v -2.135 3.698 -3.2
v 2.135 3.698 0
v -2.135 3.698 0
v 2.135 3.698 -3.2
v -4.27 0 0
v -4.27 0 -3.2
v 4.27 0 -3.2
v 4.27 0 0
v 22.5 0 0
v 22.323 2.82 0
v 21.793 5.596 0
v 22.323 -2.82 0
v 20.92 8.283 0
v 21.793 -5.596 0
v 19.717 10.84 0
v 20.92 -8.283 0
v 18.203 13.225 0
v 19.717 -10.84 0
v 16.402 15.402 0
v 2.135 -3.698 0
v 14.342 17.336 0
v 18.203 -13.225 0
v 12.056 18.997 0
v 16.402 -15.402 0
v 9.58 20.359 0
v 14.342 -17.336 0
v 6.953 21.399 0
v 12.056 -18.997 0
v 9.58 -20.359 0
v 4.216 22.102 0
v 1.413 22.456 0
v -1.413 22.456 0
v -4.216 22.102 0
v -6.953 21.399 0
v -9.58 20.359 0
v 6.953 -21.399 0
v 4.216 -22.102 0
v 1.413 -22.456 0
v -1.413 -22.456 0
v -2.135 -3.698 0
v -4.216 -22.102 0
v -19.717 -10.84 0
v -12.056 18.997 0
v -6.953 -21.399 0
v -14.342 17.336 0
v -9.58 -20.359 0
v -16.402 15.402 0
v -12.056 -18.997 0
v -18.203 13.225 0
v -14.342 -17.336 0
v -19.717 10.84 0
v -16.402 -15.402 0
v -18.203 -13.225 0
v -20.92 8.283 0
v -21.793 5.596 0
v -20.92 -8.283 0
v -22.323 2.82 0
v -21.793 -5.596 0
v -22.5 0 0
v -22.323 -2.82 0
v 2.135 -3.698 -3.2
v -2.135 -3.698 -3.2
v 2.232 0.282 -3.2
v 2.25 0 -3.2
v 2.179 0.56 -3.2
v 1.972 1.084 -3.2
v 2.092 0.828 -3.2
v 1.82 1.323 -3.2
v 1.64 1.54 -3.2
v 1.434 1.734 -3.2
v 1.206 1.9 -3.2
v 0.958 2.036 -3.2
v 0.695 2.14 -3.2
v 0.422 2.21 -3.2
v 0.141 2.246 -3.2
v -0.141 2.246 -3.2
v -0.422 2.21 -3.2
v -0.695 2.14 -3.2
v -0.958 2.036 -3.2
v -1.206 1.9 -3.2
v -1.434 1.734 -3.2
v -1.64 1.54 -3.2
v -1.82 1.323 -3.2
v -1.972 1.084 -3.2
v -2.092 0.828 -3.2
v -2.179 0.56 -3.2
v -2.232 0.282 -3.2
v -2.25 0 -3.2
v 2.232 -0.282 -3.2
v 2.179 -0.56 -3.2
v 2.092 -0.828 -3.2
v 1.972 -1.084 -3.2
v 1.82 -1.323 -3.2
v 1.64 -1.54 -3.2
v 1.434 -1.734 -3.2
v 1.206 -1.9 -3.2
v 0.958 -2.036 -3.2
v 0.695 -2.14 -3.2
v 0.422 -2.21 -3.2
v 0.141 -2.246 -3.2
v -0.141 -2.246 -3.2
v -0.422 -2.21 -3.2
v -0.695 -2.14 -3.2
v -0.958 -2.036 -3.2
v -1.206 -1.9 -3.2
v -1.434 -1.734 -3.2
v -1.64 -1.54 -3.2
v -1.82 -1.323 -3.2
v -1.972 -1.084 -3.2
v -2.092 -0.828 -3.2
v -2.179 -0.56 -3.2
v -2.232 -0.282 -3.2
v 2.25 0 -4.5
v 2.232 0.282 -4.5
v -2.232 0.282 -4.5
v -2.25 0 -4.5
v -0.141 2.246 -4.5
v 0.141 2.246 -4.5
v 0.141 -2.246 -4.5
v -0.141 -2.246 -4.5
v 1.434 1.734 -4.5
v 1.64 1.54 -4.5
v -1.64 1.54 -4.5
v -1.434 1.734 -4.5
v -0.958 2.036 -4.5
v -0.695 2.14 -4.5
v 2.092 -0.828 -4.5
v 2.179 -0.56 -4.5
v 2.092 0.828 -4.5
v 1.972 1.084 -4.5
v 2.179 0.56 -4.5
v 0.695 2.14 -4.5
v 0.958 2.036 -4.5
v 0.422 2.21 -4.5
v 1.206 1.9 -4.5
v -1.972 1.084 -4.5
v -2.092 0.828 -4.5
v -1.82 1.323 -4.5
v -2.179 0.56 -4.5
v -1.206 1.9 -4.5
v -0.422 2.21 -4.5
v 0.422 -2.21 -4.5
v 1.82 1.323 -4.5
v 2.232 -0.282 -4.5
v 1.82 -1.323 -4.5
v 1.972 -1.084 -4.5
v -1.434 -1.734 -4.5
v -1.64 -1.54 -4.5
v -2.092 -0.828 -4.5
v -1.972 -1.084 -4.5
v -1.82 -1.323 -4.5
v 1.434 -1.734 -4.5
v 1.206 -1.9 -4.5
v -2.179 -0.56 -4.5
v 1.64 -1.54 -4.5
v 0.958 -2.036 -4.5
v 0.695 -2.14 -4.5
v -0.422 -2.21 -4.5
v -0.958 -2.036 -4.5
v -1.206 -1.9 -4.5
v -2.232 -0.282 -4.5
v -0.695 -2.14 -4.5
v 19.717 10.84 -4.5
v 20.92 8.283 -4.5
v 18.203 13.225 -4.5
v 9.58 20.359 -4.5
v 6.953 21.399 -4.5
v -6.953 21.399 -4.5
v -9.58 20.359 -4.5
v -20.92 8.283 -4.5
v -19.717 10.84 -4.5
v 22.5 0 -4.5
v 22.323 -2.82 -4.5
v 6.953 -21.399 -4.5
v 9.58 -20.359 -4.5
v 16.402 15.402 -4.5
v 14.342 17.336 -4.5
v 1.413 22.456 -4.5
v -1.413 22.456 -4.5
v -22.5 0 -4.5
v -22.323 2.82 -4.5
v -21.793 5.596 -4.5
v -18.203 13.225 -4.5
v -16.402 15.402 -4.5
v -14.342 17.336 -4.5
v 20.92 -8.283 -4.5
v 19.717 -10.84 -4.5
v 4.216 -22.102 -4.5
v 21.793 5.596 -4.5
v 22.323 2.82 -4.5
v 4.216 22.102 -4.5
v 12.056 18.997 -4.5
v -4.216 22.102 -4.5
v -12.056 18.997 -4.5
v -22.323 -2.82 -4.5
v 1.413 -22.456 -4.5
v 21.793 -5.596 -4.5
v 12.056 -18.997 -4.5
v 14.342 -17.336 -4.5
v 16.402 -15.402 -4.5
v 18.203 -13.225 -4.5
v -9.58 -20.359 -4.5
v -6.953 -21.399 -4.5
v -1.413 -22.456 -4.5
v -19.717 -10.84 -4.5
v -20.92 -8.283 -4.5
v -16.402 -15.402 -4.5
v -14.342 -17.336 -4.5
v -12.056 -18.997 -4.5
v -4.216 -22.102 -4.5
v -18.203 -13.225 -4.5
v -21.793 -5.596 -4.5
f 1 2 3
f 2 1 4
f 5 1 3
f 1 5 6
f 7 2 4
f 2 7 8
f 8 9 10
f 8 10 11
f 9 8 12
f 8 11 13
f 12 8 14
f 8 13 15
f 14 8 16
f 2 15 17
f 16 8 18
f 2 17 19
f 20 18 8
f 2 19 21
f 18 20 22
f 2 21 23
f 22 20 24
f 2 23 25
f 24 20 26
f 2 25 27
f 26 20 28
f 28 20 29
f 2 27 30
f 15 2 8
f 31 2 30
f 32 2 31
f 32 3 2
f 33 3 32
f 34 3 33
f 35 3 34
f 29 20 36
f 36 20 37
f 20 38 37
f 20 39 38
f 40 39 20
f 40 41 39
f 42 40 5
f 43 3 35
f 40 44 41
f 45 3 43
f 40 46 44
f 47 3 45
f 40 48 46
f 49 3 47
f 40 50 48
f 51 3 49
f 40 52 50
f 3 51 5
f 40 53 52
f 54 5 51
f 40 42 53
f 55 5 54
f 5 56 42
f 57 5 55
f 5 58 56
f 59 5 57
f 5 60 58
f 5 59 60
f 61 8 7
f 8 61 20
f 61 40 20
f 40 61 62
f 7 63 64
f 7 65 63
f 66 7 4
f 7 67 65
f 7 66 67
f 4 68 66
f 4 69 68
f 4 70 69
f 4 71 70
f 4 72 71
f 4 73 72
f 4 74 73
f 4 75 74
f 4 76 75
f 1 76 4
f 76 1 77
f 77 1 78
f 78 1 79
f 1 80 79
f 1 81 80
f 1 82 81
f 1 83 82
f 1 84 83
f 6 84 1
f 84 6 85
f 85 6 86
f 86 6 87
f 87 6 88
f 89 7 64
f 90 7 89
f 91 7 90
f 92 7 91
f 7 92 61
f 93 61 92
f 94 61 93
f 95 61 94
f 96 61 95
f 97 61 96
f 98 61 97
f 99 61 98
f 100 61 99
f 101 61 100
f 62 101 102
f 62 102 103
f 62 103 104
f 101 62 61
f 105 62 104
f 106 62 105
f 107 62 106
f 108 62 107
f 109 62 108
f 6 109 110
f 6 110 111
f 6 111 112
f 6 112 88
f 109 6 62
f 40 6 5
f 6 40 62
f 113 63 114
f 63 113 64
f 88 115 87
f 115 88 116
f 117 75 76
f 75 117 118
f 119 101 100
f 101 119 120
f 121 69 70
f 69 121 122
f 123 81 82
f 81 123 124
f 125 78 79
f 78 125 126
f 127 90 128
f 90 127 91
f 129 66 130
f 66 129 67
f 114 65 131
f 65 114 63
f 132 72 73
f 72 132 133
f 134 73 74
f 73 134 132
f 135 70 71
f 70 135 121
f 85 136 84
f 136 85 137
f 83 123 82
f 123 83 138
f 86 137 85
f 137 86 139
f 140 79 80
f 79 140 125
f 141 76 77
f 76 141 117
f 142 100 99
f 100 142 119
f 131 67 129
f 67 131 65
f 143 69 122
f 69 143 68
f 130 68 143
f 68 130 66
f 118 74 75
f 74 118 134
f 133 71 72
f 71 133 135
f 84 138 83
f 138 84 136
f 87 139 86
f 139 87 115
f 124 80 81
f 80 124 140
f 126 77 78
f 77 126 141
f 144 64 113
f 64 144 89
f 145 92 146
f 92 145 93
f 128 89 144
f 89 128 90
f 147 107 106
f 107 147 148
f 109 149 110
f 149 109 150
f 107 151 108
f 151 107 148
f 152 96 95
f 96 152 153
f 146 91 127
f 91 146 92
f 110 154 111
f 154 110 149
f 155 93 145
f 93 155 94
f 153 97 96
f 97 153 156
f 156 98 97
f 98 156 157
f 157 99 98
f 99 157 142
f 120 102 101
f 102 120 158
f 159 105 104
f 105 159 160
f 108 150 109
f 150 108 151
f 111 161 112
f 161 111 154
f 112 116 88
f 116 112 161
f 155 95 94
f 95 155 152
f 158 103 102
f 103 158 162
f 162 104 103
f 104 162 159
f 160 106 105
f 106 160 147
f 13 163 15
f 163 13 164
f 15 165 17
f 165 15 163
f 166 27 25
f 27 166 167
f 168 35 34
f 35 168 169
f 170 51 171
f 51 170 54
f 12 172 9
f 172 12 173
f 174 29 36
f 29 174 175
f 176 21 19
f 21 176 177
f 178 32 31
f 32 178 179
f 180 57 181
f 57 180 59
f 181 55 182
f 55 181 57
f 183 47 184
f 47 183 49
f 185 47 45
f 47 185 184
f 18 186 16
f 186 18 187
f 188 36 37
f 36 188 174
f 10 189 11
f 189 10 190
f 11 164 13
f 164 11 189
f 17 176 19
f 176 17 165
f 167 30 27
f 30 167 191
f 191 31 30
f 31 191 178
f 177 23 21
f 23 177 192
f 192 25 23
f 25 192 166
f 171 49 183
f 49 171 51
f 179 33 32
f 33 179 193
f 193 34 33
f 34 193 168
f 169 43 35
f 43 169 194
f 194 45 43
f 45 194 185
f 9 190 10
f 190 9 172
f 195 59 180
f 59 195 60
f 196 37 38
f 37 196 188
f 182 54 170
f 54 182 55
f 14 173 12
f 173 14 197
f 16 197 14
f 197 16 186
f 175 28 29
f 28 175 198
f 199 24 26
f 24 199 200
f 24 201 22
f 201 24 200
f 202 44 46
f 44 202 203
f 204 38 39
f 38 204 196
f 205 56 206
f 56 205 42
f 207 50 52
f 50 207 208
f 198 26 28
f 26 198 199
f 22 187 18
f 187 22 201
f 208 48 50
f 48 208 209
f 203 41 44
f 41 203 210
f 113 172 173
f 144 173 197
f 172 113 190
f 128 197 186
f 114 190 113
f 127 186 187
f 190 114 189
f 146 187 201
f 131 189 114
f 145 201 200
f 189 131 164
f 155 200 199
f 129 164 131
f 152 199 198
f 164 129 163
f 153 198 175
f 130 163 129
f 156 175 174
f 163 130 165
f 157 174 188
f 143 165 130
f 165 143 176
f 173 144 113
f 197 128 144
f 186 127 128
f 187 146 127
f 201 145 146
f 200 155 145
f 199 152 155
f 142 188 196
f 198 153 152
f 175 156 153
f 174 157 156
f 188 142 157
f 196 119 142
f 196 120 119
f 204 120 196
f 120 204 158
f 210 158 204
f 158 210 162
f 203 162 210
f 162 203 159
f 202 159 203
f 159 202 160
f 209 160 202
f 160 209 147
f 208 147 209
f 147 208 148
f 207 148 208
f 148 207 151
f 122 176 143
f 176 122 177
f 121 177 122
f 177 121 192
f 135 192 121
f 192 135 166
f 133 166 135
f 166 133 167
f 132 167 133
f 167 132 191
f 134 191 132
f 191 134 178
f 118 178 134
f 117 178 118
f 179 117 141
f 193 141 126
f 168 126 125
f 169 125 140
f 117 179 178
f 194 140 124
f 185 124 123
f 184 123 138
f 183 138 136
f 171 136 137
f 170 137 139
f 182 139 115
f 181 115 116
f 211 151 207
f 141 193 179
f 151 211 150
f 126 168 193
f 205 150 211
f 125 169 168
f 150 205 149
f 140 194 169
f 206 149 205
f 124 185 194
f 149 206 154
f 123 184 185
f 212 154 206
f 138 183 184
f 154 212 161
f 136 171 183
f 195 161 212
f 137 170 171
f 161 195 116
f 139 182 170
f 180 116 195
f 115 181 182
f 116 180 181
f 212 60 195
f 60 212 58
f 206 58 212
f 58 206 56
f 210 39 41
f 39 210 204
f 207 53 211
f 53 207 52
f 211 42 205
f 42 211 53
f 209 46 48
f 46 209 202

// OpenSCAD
$fn = 50;


difference() {
	union() {
		translate(v = [0, 0, -4.5000000000]) {
			cylinder(h = 4.5000000000, r = 22.5000000000);
		}
	}
	union() {
		translate(v = [0, 0, 0]) {
			rotate(a = [0, 0, 0]) {
				difference() {
					union() {
						translate(v = [0, 0, -3.2000000000]) {
							linear_extrude(height = 3.2000000000) {
								polygon(points = [[4.2698000000, 0.0000000000], [2.1349000000, 3.6977552691], [-2.1349000000, 3.6977552691], [-4.2698000000, 0.0000000000], [-2.1349000000, -3.6977552691], [2.1349000000, -3.6977552691]]);
							}
						}
					}
					union();
				}
			}
		}
		#translate(v = [0, 0, -100.0000000000]) {
			cylinder(h = 200, r = 2.2500000000);
		}
	}
}
